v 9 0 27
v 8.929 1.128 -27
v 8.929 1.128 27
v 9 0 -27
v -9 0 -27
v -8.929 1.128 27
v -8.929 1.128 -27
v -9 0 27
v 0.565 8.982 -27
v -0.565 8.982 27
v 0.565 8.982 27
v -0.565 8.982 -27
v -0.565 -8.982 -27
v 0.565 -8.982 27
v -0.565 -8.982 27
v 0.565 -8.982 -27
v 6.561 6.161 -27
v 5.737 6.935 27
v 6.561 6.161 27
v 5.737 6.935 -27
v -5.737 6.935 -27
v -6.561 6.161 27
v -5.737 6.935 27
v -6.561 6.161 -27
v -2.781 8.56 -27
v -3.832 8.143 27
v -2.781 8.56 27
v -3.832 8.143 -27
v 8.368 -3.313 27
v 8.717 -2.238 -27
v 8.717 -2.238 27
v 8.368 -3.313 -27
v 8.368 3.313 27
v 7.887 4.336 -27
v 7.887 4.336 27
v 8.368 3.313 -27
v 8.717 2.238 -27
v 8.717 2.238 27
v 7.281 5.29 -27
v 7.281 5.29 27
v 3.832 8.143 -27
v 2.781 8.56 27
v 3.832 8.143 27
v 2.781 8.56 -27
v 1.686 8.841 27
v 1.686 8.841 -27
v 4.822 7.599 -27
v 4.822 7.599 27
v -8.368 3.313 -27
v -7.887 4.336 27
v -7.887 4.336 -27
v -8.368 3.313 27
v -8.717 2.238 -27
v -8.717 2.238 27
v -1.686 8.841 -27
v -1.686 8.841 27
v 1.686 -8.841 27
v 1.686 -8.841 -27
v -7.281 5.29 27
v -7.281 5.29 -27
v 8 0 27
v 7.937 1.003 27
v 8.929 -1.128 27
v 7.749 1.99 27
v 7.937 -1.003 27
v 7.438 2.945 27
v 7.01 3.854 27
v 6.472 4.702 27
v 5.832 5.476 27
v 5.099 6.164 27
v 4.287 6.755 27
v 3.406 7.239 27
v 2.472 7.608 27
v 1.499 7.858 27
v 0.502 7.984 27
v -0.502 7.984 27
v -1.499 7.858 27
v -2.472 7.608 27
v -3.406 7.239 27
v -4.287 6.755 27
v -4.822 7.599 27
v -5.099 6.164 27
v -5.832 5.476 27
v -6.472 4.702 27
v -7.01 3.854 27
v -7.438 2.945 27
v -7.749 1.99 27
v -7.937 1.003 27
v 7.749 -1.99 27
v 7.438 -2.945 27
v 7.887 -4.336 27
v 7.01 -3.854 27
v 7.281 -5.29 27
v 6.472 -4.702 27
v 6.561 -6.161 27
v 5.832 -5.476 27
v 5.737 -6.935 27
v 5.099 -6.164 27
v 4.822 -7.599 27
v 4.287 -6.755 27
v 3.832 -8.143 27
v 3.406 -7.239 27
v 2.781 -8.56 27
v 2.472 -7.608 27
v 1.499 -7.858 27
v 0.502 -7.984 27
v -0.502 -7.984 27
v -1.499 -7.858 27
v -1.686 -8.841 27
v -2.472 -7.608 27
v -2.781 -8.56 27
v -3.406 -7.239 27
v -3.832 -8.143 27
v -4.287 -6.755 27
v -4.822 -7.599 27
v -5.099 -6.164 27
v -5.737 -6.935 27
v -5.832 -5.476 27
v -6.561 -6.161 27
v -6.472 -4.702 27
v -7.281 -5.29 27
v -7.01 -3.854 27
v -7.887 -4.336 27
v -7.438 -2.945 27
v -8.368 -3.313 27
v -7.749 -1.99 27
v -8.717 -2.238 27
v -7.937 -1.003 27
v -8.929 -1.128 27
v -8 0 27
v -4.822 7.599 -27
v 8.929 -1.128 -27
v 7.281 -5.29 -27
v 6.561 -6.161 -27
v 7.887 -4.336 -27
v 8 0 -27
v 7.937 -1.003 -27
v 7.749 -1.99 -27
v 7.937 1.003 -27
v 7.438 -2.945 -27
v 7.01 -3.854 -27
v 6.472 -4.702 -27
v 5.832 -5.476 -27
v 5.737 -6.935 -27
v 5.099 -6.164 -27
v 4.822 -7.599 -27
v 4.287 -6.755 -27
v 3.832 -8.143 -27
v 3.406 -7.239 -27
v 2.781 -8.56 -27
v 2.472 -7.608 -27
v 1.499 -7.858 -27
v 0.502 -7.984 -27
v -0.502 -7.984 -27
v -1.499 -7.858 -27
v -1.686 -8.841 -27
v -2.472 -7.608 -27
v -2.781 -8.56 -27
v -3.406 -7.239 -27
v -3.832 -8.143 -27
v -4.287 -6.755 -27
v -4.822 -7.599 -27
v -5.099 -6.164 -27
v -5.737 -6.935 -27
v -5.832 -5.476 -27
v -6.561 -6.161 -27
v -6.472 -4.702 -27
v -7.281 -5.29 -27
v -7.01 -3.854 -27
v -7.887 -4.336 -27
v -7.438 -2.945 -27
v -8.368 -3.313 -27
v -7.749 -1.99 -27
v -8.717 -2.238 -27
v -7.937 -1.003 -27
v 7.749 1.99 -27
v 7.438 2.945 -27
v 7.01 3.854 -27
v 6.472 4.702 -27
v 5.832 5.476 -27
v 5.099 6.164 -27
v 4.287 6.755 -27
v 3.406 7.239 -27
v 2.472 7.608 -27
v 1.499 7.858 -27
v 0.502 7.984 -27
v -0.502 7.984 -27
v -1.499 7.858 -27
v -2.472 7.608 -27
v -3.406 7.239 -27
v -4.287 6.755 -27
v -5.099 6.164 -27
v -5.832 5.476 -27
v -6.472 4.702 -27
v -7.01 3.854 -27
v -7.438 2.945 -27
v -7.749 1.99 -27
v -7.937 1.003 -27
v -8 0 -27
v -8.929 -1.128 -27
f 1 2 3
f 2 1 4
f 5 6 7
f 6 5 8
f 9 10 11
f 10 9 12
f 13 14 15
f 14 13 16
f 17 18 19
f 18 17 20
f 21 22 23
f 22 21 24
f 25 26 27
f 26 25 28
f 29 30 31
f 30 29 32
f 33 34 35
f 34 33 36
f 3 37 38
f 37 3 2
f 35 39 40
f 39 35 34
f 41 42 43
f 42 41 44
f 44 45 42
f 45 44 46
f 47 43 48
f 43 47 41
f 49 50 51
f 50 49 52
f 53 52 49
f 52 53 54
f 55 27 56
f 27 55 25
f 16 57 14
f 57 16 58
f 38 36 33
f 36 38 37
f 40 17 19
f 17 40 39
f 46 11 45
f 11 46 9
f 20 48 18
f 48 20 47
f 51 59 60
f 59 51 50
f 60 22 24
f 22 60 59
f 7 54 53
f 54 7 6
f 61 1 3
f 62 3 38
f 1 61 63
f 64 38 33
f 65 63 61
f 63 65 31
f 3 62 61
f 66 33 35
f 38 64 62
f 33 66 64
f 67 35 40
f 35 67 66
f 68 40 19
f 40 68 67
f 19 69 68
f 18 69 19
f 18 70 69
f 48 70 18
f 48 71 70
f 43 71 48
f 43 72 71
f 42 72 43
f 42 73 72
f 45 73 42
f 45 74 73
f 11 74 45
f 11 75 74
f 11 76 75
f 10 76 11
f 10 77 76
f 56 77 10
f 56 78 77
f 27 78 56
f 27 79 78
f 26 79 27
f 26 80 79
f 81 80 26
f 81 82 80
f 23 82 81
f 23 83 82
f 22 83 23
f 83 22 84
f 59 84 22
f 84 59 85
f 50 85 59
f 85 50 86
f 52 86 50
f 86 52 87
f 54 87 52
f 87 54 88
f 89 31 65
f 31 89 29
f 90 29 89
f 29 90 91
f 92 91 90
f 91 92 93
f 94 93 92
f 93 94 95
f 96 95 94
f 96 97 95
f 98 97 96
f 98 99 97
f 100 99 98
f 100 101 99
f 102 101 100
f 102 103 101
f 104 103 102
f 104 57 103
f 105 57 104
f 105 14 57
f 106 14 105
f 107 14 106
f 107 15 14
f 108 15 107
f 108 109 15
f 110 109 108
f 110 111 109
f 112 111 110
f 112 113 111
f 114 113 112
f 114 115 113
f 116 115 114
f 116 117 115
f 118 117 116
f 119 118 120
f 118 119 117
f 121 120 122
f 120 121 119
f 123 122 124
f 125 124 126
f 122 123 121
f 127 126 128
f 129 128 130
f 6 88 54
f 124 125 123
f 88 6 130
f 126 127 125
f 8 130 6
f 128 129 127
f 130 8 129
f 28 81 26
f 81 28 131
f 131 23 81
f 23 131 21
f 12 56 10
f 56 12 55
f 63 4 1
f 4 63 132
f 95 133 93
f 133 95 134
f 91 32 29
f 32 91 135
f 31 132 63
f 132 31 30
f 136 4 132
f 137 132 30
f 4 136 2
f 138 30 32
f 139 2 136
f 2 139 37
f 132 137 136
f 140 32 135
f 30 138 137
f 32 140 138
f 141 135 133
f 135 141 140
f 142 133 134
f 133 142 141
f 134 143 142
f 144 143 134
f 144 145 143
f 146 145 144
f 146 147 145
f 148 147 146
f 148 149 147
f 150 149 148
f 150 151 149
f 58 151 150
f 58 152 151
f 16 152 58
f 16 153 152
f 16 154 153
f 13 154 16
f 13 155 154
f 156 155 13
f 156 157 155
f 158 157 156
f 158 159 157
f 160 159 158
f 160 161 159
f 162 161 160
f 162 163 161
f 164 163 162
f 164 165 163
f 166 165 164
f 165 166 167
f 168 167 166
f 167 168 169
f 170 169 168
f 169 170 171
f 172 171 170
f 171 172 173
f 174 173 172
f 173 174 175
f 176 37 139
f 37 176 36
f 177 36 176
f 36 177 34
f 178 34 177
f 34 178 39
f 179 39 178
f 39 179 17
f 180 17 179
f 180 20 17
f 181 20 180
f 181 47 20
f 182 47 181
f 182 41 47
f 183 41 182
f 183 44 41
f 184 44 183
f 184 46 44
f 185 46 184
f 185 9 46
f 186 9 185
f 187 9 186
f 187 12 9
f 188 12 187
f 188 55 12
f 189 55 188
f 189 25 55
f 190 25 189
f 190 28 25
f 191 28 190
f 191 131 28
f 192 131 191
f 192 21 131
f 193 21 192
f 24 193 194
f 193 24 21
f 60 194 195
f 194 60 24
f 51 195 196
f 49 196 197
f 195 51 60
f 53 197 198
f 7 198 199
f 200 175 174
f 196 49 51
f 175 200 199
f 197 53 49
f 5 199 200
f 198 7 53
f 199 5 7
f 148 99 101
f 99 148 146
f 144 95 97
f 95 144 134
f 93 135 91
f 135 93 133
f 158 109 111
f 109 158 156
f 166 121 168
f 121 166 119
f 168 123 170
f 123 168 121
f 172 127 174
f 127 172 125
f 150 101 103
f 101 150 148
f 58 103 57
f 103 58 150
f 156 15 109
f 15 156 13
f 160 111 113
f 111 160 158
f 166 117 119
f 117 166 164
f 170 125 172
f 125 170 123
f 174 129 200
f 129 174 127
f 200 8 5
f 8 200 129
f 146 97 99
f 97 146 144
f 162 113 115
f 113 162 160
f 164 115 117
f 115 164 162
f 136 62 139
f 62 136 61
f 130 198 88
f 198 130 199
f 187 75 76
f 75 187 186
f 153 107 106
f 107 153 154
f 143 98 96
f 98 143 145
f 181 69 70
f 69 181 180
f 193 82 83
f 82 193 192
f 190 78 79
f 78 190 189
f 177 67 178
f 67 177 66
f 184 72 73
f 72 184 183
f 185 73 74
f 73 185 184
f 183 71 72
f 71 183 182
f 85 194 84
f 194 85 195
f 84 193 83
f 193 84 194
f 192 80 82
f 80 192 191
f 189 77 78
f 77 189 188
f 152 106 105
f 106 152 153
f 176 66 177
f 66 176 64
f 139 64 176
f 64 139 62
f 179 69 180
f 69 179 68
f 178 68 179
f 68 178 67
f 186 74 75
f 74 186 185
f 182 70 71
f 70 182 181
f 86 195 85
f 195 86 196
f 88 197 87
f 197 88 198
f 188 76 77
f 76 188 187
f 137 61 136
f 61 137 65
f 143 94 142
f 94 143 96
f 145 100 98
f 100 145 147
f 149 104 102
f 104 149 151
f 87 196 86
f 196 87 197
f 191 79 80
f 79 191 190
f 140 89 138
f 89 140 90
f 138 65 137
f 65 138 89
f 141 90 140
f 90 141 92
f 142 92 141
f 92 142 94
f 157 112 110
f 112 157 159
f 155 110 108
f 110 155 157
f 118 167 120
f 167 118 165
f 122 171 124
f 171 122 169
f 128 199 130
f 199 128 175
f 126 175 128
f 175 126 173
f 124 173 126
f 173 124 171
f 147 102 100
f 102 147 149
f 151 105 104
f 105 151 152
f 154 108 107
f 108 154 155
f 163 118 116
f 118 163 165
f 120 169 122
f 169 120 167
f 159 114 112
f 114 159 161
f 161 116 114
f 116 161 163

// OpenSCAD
$fn = 50;


difference() {
	union() {
		translate(v = [0, 0, -27.0000000000]) {
			cylinder(h = 54, r = 9.0000000000);
		}
	}
	union() {
		translate(v = [0, 0, -100.0000000000]) {
			cylinder(h = 200, r = 8);
		}
	}
}
